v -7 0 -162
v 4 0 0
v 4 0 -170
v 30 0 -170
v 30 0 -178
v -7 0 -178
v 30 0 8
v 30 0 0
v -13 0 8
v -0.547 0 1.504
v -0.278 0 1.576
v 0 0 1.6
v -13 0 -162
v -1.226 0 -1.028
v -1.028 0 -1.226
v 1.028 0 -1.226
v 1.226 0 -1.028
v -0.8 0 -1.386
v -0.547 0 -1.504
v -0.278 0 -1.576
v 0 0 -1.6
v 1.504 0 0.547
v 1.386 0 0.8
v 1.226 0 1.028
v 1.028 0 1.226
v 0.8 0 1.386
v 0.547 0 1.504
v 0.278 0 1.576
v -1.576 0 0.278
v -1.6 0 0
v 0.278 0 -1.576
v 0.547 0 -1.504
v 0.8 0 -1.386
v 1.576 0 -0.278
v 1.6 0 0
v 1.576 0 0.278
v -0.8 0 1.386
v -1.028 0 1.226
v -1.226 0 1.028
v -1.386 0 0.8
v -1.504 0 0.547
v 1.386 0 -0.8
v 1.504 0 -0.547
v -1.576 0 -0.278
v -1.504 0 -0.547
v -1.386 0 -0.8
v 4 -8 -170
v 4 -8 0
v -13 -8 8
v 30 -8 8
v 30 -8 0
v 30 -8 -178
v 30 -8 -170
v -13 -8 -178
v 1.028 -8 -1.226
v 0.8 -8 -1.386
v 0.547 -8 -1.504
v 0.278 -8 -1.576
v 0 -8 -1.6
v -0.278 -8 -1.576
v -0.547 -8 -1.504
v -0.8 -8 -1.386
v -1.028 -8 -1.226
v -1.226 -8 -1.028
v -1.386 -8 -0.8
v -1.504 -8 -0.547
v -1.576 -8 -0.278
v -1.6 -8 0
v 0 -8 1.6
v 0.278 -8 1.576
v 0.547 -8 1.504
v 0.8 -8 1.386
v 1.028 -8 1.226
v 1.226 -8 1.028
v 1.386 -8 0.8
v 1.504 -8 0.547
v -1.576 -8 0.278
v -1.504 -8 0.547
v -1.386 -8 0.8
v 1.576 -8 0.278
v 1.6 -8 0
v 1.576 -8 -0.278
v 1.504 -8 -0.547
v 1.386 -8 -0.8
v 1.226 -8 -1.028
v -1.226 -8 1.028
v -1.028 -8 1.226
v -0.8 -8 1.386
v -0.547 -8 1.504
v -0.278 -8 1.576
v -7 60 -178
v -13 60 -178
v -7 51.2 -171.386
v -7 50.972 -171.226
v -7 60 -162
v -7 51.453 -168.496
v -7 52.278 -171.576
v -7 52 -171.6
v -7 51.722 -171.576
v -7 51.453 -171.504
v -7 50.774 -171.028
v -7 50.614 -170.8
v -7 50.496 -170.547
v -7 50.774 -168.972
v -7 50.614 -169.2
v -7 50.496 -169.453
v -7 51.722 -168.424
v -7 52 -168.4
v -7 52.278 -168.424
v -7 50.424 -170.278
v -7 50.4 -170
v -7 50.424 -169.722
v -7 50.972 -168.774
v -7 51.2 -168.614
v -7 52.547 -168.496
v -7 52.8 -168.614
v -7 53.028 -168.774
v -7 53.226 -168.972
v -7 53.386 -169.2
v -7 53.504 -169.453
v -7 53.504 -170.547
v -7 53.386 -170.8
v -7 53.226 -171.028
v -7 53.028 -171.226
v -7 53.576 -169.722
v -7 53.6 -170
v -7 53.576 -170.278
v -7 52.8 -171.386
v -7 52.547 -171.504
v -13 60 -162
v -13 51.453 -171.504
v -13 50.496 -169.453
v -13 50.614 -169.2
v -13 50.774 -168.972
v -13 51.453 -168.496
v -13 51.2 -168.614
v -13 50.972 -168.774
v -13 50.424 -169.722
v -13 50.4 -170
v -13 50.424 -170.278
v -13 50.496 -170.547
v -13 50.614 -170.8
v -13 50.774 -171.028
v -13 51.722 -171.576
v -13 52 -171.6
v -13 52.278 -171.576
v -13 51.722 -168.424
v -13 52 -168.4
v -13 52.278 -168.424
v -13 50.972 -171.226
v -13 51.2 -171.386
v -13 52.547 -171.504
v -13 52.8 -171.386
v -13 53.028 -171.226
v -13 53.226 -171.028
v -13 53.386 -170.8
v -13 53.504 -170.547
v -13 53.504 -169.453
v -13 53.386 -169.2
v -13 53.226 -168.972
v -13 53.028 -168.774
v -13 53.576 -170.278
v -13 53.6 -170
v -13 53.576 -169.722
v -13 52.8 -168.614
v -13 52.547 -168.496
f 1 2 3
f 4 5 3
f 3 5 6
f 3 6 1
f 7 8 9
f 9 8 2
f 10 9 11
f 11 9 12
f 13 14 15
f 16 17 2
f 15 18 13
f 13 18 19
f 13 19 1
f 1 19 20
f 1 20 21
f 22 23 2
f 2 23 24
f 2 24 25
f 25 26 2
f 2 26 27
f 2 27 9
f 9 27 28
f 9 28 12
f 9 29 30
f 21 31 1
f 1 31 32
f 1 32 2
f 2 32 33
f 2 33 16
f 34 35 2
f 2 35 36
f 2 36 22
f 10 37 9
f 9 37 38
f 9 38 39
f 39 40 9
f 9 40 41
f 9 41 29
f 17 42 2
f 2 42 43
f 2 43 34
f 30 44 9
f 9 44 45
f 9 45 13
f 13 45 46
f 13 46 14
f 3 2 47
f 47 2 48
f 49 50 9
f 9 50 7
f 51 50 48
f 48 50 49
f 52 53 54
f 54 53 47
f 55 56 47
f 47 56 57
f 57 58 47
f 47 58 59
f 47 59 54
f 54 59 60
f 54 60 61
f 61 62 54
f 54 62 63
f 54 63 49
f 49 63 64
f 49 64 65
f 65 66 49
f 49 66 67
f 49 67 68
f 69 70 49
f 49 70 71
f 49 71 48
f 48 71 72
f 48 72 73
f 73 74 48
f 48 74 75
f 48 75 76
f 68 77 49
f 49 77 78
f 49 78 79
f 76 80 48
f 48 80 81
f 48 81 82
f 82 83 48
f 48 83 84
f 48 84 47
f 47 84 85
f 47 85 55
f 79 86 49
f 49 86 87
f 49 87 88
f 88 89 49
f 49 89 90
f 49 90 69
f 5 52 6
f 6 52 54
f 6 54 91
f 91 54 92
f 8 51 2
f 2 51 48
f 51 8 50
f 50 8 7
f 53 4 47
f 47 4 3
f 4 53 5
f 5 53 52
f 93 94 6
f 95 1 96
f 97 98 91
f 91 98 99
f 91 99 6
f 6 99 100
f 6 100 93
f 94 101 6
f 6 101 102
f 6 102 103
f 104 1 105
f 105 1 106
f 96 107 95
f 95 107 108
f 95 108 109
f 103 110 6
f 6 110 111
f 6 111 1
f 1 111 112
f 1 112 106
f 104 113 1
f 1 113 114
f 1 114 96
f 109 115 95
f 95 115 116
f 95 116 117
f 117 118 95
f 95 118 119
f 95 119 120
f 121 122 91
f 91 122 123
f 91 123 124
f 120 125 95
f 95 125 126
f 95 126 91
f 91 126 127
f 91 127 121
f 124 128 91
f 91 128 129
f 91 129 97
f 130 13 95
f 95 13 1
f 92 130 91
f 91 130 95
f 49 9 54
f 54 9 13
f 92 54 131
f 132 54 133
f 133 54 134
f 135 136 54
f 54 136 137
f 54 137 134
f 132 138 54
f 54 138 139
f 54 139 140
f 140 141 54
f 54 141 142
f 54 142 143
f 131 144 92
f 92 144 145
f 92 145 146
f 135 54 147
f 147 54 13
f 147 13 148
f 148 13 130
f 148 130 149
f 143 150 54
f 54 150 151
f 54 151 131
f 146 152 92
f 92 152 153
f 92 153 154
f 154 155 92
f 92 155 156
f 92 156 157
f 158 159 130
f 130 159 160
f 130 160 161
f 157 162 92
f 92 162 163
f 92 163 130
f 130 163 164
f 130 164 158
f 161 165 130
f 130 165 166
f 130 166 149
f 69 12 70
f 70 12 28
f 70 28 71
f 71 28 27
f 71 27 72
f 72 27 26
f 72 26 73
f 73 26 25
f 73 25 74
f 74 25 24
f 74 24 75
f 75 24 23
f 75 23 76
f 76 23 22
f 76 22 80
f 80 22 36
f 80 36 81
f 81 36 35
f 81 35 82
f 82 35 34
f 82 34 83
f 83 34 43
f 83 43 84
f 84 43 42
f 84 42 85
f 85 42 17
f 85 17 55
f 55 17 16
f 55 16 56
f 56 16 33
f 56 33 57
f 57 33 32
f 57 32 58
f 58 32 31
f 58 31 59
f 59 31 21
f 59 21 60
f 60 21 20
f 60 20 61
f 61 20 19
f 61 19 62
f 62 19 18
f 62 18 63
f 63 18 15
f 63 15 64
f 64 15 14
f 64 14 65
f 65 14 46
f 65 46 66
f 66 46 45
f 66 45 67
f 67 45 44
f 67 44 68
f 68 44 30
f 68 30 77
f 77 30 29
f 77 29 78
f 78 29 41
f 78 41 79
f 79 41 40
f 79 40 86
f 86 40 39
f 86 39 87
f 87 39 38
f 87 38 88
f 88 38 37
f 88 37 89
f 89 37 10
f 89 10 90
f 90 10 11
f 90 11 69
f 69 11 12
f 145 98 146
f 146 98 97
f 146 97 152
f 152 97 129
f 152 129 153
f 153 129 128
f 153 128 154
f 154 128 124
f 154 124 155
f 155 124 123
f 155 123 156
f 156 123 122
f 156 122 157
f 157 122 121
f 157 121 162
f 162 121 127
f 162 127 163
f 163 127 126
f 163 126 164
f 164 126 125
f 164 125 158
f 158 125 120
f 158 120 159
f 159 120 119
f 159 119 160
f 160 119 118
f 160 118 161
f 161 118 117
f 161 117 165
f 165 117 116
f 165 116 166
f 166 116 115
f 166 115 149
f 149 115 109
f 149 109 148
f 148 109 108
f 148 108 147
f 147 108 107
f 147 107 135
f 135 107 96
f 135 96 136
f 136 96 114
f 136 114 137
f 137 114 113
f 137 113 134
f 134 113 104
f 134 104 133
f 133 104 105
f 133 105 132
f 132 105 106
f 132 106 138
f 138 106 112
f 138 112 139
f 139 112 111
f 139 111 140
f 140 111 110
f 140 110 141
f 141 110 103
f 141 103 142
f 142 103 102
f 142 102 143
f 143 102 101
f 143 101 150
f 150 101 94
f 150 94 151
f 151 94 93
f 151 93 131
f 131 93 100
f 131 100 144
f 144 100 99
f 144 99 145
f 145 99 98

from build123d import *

# Parameters (mm, degrees)
BOSS_EXTRUDE1_DEPTH  = 4
SKETCH2_W            = 8
SKETCH2_H            = 8
BOSS_EXTRUDE2_DEPTH  = 26
BOSS_EXTRUDE3_DEPTH  = 7
BOSS_EXTRUDE4_DEPTH  = 6
M3_CLEARANCE_HOLE1_D = 3.2
M3_CLEARANCE_HOLE2_D = 3.2


with BuildPart() as part:
    # Sketch1 → Boss-Extrude1 (new body)
    with BuildSketch(Plane(origin=(0, 0, 0), x_dir=(0, 0, -1), z_dir=(1, 0, 0))):
        Polygon((0, 0), (-8, 0), (-8, -8), (178, -8), (178, 0), (170, 0), align=None)
    extrude(amount=BOSS_EXTRUDE1_DEPTH)

    # Sketch2 → Boss-Extrude2 (add)
    with BuildSketch(Plane(origin=(4, 0, 0), x_dir=(0, 0, -1), z_dir=(1, 0, 0))):
        with Locations((-4, -4)):
            Rectangle(SKETCH2_W, SKETCH2_H)
        with Locations((174, -4)):
            Rectangle(SKETCH2_W, SKETCH2_H)
    extrude(amount=BOSS_EXTRUDE2_DEPTH)

    # Sketch1<2> → Boss-Extrude3 (add)
    with BuildSketch(Plane(origin=(0, 0, 0), x_dir=(0, 0, -1), z_dir=(1, 0, 0))):
        Polygon((0, 0), (-8, 0), (-8, -8), (178, -8), (178, 0), (170, 0), align=None)
    extrude(amount=-BOSS_EXTRUDE3_DEPTH)

    # Sketch4 → Boss-Extrude4 (add)
    with BuildSketch(Plane.ZY.offset(7)):
        Polygon((-178, 0), (-178, 60), (-162, 60), (-162, 0), (8, 0), (8, -8), (-178, -8), align=None)
    extrude(amount=BOSS_EXTRUDE4_DEPTH)

    # M3 Clearance Hole1 (through all)
    with Locations(Plane.ZX):
        with Locations((0, 0)):
            Hole(M3_CLEARANCE_HOLE1_D / 2)

    # M3 Clearance Hole2 (through all)
    with Locations(Plane(origin=(-7, 52, -170), x_dir=(0, 0, 1), z_dir=(1, 0, 0))):
        with Locations((0, 0)):
            Hole(M3_CLEARANCE_HOLE2_D / 2)


solid = part.part
